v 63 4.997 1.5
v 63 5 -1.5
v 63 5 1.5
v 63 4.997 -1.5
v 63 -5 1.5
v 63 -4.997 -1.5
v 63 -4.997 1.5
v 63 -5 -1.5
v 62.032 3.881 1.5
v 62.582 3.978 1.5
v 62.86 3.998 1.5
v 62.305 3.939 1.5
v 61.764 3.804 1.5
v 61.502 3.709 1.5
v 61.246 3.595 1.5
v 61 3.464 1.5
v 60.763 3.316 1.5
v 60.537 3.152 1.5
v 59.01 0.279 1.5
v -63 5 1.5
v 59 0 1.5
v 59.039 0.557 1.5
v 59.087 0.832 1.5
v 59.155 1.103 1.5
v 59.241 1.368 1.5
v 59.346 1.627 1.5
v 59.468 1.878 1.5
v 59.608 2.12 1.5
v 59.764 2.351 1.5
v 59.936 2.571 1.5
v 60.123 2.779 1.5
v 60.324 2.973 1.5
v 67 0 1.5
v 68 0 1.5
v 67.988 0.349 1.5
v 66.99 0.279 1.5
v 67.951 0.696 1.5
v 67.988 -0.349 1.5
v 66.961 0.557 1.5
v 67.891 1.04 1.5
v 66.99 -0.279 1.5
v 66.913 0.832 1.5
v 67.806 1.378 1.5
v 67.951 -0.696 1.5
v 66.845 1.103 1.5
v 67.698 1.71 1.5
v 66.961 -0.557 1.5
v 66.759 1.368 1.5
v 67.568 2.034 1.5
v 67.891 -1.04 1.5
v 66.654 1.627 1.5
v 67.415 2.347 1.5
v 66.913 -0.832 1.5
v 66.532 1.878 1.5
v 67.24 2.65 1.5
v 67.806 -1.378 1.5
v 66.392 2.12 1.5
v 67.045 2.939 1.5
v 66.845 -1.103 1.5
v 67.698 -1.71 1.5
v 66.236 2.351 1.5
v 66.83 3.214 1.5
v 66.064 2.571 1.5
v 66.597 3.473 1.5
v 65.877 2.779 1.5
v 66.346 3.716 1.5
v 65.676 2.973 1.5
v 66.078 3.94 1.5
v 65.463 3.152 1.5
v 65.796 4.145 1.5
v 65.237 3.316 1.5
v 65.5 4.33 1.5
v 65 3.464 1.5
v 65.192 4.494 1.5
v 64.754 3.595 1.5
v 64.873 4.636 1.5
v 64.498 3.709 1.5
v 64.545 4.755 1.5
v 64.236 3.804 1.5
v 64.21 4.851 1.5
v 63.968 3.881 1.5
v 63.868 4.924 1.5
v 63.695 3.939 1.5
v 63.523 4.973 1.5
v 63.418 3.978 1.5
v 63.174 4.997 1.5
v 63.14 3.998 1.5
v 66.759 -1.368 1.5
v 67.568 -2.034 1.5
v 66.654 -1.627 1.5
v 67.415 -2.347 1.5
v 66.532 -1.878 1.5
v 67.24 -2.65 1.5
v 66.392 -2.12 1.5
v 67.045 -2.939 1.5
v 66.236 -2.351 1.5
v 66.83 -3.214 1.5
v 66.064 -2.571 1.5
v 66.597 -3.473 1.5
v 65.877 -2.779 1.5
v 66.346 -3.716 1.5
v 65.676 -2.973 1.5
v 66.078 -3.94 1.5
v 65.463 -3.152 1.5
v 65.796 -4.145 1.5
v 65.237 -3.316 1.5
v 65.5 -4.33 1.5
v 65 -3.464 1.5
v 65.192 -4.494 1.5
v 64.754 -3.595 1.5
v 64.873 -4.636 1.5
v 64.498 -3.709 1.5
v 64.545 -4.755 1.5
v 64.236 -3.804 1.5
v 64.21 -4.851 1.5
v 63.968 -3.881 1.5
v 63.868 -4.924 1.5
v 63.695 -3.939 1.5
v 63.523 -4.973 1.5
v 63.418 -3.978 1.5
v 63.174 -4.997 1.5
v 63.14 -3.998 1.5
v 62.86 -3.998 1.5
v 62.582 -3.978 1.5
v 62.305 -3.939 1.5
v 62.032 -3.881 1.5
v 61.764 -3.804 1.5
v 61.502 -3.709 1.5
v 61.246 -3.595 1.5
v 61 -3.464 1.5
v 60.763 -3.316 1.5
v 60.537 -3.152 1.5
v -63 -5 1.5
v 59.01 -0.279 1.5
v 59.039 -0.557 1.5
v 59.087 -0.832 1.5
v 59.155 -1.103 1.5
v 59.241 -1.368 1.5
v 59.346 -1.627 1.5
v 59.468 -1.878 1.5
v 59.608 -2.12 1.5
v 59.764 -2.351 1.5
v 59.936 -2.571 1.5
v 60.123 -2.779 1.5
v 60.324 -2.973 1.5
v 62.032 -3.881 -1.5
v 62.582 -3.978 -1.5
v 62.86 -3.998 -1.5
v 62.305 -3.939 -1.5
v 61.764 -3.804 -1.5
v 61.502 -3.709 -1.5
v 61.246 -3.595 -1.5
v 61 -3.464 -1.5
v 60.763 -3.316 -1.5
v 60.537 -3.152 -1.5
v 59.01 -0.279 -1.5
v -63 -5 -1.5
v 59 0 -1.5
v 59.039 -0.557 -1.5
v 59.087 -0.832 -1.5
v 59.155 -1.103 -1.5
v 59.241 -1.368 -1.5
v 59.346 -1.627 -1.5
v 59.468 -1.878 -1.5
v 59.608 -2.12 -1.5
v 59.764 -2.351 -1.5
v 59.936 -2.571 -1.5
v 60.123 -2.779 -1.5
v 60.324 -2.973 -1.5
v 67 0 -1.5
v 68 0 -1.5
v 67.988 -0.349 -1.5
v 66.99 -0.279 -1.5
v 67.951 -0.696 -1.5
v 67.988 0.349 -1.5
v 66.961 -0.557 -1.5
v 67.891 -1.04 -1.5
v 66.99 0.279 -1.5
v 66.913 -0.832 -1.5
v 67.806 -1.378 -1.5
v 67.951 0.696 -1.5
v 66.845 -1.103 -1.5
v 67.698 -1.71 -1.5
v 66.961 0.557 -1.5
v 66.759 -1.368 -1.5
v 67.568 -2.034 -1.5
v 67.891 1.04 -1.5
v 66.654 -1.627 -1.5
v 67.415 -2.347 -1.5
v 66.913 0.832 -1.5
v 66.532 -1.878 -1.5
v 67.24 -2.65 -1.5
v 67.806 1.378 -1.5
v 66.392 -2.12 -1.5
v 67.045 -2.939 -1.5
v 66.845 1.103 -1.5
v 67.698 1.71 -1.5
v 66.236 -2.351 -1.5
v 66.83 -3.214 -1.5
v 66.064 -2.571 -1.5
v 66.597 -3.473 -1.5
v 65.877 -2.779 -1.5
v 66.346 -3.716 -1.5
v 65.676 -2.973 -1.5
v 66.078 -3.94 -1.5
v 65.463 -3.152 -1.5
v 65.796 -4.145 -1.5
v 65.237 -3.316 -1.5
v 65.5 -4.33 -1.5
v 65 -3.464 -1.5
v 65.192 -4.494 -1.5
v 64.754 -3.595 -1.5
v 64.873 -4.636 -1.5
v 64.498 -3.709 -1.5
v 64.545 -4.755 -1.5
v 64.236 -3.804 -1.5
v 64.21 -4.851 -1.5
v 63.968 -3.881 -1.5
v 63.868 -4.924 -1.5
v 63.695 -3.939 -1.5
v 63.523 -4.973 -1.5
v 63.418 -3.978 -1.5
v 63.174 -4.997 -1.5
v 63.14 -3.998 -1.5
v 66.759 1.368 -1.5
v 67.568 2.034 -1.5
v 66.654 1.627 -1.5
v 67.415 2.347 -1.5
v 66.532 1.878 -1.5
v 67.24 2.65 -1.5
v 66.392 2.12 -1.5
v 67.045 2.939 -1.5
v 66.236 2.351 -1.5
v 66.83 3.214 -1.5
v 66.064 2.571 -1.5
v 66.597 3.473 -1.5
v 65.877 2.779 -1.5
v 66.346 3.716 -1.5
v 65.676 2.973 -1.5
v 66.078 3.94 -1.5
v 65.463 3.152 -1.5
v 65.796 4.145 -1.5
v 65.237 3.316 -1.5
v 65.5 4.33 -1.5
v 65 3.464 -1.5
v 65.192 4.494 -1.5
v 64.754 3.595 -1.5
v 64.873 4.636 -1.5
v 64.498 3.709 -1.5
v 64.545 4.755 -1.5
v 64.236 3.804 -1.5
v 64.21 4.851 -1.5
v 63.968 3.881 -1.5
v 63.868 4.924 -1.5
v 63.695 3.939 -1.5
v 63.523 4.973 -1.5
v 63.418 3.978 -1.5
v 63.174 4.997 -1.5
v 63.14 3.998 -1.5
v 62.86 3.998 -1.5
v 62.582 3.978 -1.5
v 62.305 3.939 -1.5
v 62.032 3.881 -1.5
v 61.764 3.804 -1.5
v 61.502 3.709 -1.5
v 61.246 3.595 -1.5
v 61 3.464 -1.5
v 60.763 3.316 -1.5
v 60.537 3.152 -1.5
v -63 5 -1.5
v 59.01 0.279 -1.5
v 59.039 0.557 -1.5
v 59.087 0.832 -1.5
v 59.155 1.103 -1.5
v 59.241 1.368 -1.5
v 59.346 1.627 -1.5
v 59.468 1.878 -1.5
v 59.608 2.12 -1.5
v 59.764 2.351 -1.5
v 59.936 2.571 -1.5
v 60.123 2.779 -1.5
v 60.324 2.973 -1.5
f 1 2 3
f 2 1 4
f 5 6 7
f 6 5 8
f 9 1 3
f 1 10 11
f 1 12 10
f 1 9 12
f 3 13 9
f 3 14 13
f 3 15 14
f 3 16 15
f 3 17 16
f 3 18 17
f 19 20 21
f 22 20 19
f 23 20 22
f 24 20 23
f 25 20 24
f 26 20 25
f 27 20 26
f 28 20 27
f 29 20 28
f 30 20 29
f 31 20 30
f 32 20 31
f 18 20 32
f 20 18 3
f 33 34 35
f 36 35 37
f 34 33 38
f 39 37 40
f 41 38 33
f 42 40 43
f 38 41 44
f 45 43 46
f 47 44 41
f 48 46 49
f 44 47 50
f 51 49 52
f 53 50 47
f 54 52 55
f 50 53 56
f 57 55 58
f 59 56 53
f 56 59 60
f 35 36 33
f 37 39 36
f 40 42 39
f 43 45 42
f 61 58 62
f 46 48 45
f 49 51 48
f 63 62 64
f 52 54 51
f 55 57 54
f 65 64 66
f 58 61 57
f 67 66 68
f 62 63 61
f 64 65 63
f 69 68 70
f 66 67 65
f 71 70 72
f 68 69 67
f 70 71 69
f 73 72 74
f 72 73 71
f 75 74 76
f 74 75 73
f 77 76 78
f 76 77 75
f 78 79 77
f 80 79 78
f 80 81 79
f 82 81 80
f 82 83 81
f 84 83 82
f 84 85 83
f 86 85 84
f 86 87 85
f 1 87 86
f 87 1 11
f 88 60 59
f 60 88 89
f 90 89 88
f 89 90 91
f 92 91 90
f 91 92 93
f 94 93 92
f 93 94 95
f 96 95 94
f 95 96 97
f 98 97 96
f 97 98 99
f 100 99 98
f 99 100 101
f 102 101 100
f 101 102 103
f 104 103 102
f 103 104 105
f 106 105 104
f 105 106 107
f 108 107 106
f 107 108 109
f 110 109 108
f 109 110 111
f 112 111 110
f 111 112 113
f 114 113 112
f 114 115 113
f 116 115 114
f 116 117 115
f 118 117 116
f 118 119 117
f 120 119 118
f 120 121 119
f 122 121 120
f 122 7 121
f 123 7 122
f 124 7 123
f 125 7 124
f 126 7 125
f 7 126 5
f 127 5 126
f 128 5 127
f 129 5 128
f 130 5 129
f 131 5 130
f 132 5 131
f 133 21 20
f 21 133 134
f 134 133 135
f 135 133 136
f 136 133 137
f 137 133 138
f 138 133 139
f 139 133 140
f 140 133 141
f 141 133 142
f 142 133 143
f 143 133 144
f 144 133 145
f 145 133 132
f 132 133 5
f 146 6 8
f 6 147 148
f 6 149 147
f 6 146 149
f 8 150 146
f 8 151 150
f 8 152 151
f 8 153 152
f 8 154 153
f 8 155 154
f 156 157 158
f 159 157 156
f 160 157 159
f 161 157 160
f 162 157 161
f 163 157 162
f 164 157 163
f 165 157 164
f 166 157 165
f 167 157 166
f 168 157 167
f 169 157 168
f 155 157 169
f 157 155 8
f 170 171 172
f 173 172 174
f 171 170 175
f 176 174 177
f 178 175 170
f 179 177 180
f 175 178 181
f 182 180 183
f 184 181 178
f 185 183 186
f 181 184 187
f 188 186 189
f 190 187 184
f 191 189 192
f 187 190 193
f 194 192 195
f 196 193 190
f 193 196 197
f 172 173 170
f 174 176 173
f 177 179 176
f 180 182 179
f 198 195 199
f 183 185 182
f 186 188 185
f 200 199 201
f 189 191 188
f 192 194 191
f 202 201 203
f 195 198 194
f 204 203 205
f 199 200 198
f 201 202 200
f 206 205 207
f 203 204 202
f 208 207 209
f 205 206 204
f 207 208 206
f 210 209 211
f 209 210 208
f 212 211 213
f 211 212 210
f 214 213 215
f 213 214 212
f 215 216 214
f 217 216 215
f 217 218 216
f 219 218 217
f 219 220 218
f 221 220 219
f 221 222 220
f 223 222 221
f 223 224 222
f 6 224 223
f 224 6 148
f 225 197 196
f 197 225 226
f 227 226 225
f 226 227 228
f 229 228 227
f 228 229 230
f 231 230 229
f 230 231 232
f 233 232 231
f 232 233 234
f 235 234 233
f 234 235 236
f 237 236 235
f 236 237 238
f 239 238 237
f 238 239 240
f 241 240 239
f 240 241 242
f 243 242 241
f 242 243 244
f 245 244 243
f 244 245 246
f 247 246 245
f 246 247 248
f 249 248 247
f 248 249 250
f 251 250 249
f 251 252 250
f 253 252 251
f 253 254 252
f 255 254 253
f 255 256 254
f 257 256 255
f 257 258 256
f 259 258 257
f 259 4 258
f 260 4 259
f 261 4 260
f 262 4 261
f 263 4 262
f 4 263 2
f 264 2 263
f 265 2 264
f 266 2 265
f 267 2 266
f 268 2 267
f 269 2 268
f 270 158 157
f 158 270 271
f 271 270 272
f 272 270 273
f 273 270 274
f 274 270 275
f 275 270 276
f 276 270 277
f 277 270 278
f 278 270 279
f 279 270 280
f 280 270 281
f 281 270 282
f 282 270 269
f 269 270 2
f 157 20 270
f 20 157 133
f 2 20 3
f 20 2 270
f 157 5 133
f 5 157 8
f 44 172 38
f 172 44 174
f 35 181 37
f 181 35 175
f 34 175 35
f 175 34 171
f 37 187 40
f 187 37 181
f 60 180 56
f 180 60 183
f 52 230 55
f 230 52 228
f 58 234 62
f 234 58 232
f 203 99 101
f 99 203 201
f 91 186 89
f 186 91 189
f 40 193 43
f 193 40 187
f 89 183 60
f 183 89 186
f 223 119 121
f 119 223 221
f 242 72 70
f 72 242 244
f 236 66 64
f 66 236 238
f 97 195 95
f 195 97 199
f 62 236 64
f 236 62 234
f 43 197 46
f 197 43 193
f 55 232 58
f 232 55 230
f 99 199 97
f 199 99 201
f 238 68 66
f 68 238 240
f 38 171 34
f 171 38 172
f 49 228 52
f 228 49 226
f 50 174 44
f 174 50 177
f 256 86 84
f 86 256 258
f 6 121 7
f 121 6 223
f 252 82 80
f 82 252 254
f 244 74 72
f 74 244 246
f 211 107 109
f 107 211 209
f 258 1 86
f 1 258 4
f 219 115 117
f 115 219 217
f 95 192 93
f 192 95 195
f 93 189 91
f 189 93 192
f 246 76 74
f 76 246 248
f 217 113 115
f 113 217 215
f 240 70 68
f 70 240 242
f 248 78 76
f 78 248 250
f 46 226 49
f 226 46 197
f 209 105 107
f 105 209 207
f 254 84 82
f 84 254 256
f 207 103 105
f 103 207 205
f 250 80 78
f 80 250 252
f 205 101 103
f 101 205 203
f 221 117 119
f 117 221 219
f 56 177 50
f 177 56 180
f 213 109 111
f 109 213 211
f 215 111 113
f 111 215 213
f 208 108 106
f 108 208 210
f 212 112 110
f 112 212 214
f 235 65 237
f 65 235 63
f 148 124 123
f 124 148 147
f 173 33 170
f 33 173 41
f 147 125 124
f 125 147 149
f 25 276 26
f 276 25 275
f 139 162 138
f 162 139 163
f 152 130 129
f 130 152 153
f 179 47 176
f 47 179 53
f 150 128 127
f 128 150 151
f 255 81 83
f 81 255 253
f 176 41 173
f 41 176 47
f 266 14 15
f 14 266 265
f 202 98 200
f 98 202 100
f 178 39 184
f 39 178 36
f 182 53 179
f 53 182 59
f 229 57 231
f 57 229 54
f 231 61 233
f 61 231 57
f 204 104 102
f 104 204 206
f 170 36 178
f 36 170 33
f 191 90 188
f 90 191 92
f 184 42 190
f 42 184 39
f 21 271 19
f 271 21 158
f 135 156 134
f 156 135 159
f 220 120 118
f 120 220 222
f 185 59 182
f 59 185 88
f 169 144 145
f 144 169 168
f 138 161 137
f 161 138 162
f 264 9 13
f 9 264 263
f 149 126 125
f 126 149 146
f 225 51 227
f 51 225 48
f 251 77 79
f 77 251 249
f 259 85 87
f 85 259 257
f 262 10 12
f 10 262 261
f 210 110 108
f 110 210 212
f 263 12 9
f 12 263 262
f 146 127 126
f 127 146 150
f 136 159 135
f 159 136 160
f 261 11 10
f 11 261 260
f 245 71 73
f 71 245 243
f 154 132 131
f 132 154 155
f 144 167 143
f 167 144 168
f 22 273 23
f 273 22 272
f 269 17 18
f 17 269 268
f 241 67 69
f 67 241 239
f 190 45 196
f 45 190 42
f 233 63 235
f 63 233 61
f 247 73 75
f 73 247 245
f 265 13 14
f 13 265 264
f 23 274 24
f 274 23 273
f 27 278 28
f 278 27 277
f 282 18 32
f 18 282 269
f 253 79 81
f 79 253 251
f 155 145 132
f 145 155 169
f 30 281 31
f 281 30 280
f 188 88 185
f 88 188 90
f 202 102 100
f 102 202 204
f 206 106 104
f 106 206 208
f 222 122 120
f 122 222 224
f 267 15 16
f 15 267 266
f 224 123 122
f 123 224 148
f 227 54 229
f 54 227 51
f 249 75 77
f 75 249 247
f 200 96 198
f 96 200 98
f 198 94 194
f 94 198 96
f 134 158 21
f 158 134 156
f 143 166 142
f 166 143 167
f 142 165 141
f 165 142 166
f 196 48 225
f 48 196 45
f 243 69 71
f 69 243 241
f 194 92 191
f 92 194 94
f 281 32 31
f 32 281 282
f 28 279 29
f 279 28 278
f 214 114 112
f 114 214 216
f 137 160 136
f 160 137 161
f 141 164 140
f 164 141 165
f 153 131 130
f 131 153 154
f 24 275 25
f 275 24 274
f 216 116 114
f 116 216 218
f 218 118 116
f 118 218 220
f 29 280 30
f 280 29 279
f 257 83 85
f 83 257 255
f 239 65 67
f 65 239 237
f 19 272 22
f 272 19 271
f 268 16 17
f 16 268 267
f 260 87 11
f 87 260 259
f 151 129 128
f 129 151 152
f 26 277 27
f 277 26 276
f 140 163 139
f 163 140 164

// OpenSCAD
$fn = 90;

length = 131;
width = 10;
height = 3;

cubeLength = length-width/2;

circleOutterDiameter = width;
circleWallThickness = 1;
circleInnerDiameter = circleOutterDiameter - 2*circleWallThickness;

difference(){
	union(){
		cube([cubeLength, width, height], center=true);
		translate([cubeLength/2, 0, 0])
			cylinder(d=circleOutterDiameter, h=height, center=true);
	}
	#translate([cubeLength/2, 0, 0])
		cylinder(d=circleInnerDiameter, h=height, center=true);
}
	
